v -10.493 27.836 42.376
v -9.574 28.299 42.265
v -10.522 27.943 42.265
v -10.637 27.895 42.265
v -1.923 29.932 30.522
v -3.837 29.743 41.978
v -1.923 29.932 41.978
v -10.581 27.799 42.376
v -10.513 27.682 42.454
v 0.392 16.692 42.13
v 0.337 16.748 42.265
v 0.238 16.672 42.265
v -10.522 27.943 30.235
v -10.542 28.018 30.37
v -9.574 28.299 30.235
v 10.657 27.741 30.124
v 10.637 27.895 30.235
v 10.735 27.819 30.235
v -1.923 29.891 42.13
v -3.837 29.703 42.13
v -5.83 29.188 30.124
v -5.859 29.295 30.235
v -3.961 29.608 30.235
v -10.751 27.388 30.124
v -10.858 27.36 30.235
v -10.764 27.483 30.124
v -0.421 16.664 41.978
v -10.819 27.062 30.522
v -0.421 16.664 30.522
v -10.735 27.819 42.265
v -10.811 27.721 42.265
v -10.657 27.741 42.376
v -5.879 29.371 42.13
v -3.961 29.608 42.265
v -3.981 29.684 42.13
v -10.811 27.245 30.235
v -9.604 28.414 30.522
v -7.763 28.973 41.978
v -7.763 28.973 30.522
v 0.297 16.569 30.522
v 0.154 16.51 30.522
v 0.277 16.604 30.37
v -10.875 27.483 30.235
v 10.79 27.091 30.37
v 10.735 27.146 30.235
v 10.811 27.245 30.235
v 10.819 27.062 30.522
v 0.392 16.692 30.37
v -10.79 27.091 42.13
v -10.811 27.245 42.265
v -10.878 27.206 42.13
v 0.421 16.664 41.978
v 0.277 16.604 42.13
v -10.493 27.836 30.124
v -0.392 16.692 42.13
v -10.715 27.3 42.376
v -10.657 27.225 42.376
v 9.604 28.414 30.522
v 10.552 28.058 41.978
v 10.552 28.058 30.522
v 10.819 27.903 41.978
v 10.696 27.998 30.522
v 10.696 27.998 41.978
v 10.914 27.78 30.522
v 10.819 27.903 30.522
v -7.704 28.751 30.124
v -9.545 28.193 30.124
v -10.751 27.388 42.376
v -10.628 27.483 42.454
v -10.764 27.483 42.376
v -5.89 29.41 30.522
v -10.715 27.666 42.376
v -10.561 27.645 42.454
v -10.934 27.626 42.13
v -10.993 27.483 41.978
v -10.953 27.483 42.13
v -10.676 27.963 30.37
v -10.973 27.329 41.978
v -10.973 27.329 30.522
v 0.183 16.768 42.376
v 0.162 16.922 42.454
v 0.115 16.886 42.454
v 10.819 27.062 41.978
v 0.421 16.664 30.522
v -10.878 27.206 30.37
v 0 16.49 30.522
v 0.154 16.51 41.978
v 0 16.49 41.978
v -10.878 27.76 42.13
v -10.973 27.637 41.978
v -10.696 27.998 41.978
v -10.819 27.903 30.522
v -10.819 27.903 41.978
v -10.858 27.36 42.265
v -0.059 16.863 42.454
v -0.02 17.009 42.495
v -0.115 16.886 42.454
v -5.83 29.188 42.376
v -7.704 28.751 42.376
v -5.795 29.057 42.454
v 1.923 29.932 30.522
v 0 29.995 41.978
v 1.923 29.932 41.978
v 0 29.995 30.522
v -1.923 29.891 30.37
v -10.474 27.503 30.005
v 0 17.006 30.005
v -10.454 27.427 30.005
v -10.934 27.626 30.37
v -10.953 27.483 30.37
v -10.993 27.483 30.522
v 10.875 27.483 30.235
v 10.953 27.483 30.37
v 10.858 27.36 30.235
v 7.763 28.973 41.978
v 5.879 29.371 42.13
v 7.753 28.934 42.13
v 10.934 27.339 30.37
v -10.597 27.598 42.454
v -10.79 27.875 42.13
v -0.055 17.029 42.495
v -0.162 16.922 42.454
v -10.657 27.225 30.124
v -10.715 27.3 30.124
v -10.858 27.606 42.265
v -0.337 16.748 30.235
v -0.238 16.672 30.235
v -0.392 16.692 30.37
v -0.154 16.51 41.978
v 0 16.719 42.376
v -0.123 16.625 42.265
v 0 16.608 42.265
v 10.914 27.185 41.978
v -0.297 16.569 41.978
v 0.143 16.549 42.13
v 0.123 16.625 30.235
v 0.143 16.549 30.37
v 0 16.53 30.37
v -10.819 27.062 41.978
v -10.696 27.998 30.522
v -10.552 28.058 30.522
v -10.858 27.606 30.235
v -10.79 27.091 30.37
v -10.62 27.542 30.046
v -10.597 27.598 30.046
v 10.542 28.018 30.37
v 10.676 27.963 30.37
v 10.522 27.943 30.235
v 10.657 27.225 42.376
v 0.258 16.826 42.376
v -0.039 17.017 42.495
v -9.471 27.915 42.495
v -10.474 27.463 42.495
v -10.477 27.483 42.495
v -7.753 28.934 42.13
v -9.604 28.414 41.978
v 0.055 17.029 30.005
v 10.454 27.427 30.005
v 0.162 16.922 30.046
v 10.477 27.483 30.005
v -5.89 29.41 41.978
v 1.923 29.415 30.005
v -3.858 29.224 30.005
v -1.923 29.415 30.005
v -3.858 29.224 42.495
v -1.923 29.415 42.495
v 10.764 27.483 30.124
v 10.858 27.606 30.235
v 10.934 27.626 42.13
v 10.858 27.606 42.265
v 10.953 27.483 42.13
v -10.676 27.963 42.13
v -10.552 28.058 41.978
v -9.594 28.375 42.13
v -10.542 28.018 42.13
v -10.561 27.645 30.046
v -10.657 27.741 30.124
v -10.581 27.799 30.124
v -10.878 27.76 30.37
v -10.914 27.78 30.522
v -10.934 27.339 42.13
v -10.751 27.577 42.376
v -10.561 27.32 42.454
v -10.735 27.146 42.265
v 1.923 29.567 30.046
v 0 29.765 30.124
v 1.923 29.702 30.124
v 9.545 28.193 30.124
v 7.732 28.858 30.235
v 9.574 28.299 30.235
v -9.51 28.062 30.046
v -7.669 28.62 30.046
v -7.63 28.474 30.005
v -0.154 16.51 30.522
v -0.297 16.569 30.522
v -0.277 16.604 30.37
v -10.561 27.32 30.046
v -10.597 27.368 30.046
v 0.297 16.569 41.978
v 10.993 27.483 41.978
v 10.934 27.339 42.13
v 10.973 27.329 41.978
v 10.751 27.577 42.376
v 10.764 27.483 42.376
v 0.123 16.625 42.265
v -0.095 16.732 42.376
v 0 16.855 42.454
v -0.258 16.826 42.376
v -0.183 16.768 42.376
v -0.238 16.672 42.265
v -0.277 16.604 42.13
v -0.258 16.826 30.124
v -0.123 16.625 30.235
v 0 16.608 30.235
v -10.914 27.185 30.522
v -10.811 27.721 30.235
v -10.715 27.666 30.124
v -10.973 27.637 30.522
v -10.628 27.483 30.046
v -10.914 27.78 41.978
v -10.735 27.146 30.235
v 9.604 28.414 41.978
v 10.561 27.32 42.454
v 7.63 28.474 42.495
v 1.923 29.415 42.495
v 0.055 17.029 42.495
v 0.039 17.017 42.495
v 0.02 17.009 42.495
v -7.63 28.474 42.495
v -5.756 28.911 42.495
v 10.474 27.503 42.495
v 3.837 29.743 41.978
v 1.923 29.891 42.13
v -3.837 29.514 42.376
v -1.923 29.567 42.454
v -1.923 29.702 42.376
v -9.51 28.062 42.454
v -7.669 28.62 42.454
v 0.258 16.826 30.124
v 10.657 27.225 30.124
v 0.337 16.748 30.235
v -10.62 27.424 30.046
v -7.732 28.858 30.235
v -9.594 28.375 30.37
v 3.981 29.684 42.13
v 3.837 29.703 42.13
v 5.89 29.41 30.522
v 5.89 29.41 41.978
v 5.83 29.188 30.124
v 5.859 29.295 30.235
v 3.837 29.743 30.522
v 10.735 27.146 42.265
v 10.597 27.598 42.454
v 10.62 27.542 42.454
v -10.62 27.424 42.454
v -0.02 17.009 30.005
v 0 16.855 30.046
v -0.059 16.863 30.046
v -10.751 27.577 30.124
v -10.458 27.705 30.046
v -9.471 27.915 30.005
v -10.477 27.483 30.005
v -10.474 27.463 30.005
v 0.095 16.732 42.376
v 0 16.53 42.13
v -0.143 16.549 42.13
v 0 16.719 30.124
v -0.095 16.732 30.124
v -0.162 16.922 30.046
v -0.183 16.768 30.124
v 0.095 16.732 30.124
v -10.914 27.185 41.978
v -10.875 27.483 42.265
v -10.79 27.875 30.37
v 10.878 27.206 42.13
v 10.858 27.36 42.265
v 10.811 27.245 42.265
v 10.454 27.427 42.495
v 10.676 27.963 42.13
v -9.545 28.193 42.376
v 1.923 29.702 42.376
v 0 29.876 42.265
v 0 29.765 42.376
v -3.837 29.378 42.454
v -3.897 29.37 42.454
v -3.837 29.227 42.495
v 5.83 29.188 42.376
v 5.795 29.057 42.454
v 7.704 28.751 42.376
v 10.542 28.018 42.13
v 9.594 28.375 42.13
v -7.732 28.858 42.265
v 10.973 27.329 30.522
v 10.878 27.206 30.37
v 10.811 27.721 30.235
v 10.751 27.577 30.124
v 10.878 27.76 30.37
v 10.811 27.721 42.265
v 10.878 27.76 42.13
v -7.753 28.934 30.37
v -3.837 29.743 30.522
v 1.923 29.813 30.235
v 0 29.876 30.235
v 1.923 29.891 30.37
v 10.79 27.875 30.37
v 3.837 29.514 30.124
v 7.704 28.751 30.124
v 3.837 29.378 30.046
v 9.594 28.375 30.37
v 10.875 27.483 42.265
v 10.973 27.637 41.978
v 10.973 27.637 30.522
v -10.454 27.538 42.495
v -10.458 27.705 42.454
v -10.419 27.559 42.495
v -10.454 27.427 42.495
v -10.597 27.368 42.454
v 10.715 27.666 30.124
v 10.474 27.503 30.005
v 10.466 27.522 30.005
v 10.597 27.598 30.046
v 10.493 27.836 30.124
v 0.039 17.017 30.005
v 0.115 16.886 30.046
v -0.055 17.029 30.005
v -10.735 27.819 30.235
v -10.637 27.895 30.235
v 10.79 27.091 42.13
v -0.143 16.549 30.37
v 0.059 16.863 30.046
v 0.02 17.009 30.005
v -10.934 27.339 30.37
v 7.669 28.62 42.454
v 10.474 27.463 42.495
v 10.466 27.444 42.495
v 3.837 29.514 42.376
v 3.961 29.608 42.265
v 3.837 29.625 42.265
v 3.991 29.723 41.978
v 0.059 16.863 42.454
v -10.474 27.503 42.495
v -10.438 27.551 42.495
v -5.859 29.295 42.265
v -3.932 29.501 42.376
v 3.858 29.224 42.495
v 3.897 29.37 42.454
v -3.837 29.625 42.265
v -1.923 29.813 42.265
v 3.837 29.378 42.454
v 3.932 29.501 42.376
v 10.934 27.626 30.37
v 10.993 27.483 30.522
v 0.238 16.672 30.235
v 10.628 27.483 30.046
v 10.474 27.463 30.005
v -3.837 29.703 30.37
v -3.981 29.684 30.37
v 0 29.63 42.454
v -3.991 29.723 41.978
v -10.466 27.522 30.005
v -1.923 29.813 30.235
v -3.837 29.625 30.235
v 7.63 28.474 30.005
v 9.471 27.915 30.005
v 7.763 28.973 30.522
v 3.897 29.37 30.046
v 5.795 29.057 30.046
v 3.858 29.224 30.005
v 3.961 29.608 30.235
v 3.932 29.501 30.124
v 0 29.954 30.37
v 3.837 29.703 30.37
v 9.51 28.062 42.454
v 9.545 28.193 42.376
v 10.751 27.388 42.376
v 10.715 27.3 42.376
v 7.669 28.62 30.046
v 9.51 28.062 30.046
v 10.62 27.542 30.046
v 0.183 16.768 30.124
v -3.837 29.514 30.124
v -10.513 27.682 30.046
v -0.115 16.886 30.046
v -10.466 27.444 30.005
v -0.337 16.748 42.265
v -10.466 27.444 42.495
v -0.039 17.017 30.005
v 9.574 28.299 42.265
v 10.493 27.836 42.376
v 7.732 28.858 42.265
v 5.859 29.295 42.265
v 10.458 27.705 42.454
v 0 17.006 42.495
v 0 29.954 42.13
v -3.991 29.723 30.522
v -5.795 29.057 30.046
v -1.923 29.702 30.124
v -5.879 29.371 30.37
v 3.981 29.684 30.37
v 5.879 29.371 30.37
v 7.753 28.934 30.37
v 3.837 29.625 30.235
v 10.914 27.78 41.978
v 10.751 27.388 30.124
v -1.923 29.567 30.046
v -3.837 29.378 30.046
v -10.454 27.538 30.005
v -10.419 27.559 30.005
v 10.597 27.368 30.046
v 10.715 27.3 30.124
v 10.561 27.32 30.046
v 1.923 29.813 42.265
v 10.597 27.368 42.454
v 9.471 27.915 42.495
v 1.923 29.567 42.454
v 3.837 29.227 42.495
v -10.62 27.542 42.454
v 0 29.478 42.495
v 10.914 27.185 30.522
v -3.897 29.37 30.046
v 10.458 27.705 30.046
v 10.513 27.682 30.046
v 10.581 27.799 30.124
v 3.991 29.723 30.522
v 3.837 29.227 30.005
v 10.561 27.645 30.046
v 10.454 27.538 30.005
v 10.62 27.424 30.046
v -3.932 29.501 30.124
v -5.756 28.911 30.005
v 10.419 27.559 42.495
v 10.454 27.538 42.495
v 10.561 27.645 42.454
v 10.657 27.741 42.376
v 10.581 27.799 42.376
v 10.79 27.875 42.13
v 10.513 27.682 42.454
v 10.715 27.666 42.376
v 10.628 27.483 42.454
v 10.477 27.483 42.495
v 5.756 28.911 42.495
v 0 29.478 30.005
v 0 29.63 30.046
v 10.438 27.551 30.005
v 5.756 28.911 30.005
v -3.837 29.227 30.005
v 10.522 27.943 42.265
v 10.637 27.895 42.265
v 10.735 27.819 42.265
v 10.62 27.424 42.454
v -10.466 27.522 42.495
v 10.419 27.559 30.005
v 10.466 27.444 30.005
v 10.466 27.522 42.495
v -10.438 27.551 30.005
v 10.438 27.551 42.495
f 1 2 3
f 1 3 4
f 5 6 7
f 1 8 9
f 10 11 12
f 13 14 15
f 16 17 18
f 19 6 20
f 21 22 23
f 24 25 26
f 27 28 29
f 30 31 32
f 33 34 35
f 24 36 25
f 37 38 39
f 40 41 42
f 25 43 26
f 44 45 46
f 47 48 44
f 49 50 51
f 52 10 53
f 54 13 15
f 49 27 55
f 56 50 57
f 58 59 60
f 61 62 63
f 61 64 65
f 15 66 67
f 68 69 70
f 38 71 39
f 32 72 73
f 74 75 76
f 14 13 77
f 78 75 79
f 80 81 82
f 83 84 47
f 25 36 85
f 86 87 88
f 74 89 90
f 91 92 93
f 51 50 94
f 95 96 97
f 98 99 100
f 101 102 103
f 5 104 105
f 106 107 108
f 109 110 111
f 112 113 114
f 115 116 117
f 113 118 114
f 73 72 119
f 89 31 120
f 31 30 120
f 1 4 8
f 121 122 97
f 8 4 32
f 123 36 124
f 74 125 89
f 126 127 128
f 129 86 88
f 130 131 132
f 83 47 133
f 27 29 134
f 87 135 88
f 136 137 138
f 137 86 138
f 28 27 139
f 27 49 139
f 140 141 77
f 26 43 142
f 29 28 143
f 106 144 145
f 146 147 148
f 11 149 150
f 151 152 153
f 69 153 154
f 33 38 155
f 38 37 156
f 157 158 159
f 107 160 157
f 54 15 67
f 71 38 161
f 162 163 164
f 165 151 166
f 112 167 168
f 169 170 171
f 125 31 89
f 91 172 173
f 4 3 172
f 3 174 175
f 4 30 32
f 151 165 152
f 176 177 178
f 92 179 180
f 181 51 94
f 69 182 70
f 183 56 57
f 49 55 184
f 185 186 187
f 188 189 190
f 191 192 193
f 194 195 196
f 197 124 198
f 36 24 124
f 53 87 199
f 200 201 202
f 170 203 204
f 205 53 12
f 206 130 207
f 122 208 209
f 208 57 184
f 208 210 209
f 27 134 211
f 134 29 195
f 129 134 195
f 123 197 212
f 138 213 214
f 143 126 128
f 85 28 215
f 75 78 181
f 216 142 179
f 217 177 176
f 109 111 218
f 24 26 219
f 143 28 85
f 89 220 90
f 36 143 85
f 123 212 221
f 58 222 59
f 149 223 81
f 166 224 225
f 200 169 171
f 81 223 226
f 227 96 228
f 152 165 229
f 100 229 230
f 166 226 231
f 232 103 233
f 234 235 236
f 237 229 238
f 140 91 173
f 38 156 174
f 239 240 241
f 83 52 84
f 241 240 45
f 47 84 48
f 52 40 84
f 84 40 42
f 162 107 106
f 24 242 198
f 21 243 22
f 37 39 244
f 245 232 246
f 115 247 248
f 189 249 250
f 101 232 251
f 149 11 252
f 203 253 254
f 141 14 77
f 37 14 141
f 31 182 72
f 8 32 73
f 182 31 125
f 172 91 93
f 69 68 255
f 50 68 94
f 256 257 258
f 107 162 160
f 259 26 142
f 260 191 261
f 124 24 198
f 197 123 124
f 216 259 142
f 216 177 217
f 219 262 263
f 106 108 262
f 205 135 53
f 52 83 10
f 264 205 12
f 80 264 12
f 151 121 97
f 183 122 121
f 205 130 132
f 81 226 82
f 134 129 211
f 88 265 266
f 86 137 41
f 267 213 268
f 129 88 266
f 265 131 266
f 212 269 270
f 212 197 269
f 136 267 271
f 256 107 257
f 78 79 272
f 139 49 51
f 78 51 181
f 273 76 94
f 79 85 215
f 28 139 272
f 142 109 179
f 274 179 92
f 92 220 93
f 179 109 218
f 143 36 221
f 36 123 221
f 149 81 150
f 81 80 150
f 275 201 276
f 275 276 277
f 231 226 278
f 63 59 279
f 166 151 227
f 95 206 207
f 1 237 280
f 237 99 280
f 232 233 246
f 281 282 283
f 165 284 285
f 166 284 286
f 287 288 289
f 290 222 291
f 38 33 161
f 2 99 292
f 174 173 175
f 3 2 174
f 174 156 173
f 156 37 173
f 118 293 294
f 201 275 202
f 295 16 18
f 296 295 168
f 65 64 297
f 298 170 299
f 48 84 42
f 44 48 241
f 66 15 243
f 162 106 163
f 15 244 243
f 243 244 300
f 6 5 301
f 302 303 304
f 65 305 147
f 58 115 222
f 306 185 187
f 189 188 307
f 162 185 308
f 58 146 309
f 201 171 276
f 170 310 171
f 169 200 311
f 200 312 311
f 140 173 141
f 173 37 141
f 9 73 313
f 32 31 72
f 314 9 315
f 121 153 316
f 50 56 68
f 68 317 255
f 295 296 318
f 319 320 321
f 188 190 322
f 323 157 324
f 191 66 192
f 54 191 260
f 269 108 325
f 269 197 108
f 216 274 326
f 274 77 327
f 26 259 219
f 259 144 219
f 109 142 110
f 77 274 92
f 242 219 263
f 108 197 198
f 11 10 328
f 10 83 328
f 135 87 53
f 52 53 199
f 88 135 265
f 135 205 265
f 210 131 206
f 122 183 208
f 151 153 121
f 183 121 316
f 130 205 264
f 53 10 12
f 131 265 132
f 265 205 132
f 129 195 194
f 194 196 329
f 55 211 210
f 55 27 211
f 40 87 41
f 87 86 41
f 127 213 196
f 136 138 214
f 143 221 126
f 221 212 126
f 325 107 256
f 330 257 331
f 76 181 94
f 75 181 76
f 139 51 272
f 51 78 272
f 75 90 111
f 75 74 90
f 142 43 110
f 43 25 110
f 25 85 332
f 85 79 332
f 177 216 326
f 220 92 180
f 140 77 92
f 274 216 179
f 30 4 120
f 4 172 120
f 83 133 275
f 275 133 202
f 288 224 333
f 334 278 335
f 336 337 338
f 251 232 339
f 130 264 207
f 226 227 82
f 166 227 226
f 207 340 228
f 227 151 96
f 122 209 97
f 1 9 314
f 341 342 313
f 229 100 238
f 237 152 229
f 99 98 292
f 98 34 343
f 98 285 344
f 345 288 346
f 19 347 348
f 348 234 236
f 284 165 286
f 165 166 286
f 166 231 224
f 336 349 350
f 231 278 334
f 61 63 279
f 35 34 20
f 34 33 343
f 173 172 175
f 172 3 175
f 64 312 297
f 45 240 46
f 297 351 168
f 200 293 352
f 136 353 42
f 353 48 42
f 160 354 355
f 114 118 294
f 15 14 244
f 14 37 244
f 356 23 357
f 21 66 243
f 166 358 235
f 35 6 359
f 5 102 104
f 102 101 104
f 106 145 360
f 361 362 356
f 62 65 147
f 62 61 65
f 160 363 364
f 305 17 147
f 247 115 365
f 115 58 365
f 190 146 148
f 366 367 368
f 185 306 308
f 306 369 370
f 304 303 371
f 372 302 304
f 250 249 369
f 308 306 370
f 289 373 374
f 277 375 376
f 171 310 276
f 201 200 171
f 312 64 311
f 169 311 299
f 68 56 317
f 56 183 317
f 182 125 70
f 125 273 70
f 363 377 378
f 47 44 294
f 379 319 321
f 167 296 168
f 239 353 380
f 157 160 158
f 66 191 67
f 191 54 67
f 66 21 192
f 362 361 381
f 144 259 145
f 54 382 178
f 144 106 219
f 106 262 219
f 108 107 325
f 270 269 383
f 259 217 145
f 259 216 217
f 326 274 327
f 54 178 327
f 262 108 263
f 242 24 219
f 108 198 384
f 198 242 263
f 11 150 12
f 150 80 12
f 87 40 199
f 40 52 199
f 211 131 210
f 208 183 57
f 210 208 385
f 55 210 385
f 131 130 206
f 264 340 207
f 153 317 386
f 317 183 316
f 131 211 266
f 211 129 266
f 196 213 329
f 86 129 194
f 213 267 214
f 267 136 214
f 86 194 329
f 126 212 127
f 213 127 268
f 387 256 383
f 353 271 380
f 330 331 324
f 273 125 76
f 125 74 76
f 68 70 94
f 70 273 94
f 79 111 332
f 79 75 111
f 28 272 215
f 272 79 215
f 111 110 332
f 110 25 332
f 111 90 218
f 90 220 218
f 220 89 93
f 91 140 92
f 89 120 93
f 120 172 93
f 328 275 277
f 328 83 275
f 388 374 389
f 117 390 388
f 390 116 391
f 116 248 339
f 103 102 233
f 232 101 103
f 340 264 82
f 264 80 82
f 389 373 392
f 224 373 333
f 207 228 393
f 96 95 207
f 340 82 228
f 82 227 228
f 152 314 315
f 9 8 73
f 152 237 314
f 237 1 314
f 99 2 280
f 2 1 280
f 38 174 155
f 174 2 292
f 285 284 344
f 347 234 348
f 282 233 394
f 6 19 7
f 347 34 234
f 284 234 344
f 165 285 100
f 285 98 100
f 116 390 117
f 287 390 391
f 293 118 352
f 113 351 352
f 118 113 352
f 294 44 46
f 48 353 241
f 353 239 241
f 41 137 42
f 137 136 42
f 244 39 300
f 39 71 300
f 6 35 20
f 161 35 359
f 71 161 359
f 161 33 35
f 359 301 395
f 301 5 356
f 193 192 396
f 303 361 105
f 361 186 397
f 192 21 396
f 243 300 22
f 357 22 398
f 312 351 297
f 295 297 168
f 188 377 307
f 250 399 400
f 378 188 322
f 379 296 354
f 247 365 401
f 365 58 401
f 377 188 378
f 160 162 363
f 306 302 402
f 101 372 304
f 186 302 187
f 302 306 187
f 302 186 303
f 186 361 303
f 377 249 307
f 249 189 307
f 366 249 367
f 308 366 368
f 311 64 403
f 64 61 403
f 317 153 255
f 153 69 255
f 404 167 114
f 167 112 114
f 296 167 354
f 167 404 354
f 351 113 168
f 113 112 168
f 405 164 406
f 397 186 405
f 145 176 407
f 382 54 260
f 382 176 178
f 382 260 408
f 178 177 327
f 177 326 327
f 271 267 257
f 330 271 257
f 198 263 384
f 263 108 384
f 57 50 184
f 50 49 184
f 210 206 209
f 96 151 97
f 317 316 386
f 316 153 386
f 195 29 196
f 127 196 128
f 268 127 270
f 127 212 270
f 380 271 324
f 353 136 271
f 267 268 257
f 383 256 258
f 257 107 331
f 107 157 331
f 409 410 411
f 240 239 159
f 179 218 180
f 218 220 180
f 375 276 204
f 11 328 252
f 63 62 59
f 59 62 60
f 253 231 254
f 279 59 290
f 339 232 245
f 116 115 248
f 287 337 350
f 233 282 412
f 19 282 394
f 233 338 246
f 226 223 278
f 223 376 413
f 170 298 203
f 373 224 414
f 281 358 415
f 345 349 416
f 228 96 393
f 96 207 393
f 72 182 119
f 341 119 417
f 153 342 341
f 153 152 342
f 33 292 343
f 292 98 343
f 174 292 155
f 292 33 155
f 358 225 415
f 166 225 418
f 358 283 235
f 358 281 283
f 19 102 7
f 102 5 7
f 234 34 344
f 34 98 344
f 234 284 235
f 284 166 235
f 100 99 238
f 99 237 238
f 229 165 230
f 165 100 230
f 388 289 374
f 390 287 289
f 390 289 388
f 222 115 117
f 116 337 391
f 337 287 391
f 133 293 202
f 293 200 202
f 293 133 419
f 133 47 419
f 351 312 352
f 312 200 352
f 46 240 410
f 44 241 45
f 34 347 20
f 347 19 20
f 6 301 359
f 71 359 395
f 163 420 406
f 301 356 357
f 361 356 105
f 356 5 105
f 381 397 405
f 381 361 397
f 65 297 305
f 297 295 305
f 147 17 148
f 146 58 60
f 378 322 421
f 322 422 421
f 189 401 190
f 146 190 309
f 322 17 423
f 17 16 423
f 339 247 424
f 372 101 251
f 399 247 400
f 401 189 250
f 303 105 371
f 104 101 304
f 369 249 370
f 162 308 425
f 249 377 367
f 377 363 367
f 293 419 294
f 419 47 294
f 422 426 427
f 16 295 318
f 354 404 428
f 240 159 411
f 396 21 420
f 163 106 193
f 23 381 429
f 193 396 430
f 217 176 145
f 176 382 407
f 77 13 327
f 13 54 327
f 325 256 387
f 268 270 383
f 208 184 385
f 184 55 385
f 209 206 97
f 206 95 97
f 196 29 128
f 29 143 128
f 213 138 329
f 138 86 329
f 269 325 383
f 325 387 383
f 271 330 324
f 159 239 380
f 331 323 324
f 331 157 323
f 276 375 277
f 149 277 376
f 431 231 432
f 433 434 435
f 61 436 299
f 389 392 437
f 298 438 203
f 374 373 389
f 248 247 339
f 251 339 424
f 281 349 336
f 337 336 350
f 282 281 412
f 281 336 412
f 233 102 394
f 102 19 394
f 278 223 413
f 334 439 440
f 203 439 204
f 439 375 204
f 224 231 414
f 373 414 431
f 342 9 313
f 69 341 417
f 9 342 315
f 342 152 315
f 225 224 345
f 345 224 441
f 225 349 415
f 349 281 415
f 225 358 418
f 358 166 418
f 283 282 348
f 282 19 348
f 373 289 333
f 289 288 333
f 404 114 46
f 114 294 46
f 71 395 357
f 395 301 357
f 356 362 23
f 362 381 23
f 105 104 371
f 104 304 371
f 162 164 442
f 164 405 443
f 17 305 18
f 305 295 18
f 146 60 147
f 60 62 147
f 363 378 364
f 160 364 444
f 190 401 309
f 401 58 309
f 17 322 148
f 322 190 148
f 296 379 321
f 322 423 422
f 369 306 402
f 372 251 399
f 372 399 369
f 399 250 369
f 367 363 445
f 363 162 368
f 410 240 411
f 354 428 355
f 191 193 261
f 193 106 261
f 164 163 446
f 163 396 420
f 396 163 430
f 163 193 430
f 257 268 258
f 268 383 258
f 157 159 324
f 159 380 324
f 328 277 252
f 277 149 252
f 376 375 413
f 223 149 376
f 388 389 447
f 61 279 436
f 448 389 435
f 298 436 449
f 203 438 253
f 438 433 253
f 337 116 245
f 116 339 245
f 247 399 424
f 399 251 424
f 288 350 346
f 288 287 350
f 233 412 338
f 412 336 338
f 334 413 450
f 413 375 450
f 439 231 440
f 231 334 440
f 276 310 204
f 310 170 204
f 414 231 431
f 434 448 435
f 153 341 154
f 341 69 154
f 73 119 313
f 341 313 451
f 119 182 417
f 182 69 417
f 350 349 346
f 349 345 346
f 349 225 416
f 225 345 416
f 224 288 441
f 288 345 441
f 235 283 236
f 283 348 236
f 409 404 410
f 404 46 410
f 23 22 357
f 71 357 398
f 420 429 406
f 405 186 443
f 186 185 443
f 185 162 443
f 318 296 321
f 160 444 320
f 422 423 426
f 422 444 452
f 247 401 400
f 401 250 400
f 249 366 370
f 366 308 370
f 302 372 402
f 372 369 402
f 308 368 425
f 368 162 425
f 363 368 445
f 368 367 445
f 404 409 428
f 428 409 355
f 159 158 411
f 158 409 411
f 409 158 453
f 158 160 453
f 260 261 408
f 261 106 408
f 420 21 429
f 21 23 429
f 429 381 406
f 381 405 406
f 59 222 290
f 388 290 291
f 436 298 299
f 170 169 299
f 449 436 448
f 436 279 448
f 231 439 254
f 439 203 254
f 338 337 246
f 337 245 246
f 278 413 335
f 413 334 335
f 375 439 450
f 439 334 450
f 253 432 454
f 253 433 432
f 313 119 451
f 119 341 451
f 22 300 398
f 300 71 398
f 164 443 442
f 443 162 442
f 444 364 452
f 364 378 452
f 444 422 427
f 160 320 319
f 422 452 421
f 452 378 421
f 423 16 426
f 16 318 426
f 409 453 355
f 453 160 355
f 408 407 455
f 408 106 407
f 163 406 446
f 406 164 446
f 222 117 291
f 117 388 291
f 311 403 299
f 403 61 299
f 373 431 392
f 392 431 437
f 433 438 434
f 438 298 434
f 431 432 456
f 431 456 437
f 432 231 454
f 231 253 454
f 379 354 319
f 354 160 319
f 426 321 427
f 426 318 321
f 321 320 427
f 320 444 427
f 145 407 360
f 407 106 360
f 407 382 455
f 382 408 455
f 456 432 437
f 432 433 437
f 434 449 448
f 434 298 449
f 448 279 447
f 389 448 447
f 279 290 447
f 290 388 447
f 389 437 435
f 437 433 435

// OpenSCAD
// file: def.scad
round_radius = 0.6;
sticker_margin = 1.2;
sticker_round_radius = 0.4;
cube_size = 60;
disk_height = 12.5;
disk_radius = cube_size / 2;
base_size = cube_size / 2 / sqrt(10 + 7 * sqrt(2));
cut1_dis = base_size * (1 + sqrt(2) / 2);
cut2_dis = cube_size / 2;
inf = cube_size * 10;

module _cube() {
    cube([cube_size - round_radius * 2, cube_size - round_radius * 2, cube_size - round_radius * 2], center = true);
}

module _disk() {
    translate([0, 0, cube_size / 2 + disk_height / 2])
        cylinder(r = disk_radius - round_radius, h = disk_height - round_radius * 2, center = true, $fn = 96);
}

module _int_cut1() {
    translate([-inf, -inf, cut1_dis + round_radius])
        cube([inf * 2, inf * 2, inf]);
}

module _dif_cut1() {
    translate([-inf, -inf, cut1_dis - round_radius])
        cube([inf * 2, inf * 2, inf]);
}

module _sticker_int_cut1() {
    translate([-inf, -inf, cut1_dis + sticker_margin])
        cube([inf * 2, inf * 2, inf]);
}

module _sticker_dif_cut1() {
    translate([-inf, -inf, cut1_dis - sticker_margin])
        cube([inf * 2, inf * 2, inf]);
}

module _int_cut2() {
    translate([-inf, -inf, cut2_dis + round_radius])
        cube([inf * 2, inf * 2, inf]);
}

module _dif_cut2() {
    translate([-inf, -inf, cut2_dis - round_radius])
        cube([inf * 2, inf * 2, inf]);
}

module _sticker_int_cut2() {
    translate([-inf, -inf, cut2_dis + sticker_margin])
        cube([inf * 2, inf * 2, inf]);
}

module _sticker_dif_cut2() {
    translate([-inf, -inf, cut2_dis - sticker_margin])
        cube([inf * 2, inf * 2, inf]);
}

module _sticker_cube() {
    translate([-cube_size / 2 + sticker_margin, -cube_size / 2 + sticker_margin, cube_size / 2 - 0.05])
        cube([cube_size - sticker_margin * 2, cube_size - sticker_margin * 2, 0.1]);
}

module _sticker_disk() {
    translate([0, 0, cube_size / 2 + disk_height - 0.05])
        cylinder(r = disk_radius - sticker_margin, h = 0.1, center = true, $fn = 96);
}
// main file
include <def.scad>

module block_12a() {
    minkowski() {
        difference() {
            intersection() {
                _disk();
                intersection_for (deg = [45, -45])
                    rotate([-90, 0, deg])
                        _int_cut1();
            }
        }
        sphere(r = round_radius, $fn = 24);
    }
}

block_12a();
